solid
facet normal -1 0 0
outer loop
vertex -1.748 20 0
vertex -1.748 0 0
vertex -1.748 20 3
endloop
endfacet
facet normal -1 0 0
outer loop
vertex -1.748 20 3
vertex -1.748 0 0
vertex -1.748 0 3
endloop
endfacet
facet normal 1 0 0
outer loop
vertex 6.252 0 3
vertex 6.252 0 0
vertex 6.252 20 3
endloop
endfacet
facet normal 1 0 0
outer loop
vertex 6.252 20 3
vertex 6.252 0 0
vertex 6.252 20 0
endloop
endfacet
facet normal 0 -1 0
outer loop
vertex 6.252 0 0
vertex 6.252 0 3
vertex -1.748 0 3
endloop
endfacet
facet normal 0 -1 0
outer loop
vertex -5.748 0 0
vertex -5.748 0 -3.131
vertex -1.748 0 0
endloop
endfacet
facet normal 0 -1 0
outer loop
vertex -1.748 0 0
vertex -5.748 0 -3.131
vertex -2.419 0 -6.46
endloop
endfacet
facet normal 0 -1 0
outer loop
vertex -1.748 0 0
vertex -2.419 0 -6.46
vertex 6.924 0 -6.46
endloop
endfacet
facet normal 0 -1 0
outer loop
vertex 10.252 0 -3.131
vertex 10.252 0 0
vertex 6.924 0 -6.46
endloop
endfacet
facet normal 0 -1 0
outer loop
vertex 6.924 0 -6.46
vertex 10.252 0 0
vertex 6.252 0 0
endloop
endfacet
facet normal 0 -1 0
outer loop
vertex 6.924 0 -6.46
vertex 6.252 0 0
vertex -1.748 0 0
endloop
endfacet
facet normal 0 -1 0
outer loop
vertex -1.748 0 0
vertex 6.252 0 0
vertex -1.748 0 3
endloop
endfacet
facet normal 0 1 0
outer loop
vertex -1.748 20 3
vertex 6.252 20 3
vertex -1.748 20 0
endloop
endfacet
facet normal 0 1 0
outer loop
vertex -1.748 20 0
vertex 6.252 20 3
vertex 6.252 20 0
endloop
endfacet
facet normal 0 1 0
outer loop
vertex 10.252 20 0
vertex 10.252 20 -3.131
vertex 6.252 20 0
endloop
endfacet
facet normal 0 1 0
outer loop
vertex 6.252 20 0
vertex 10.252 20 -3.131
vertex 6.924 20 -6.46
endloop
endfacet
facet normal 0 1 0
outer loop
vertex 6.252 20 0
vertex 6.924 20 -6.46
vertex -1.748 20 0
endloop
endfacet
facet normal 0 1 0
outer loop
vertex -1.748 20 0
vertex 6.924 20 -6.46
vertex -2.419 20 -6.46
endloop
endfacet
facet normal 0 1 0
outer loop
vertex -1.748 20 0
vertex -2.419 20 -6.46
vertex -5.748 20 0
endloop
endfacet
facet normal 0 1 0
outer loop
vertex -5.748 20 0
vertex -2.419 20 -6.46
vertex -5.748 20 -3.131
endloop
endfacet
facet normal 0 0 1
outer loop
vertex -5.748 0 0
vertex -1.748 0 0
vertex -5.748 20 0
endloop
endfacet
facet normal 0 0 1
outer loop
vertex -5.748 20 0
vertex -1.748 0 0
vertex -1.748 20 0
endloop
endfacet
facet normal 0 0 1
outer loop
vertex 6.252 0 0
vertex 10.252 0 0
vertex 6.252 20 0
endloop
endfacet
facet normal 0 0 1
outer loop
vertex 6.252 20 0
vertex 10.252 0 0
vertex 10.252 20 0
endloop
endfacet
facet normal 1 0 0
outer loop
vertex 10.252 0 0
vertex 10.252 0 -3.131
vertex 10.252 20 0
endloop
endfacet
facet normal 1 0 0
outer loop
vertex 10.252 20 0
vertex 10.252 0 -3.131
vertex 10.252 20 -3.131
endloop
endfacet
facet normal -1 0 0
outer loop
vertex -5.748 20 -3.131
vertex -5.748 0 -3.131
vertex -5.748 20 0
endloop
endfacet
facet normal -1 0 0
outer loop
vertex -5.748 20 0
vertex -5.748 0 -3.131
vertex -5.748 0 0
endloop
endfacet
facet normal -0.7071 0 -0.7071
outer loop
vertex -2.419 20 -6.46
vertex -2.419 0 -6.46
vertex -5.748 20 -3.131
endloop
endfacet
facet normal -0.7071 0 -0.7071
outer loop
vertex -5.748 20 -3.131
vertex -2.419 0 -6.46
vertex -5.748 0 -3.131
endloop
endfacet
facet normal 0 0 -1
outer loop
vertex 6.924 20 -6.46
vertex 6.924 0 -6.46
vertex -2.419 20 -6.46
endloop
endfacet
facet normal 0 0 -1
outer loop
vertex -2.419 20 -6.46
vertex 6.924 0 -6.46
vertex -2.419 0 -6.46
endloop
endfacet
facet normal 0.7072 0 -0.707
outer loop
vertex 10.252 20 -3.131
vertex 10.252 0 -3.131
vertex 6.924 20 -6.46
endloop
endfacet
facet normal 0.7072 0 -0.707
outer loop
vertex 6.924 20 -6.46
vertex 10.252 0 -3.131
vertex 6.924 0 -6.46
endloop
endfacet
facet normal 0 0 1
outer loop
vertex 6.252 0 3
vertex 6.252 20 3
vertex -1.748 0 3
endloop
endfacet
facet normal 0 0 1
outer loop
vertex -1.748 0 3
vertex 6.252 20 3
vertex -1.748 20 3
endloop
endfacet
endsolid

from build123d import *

# Parameters (mm, degrees)
BOSS_EXTRUDE1_DEPTH          = 40
SKETCH2_W                    = 3.5
SKETCH2_H                    = 40
BOSS_EXTRUDE2_DEPTH          = 5
SKETCH4_R                    = 2
CUT_EXTRUDE1_DEPTH           = 7
SKETCH5_R                    = 3.5
CUT_EXTRUDE2_DEPTH           = 3
CUT_EXTRUDE2_DRAFT           = -27
CUT_EXTRUDE2_PROFILE_2_DEPTH = 3
CUT_EXTRUDE2_PROFILE_2_DRAFT = -27
BOSS_EXTRUDE3_DEPTH          = 3
SKETCH9_W                    = 13
SKETCH9_H                    = 40
CUT_EXTRUDE4_DEPTH           = 4.702585656
SKETCH10_W                   = 15
SKETCH10_H                   = 40
BOSS_EXTRUDE4_DEPTH          = 2.5
SKETCH11_W                   = 1.5
SKETCH11_H                   = 2.202585656
BOSS_EXTRUDE7_DEPTH          = 40
BOSS_EXTRUDE8_DEPTH          = 0.625841469
SKETCH13_R                   = 2
CUT_EXTRUDE5_DEPTH           = 10
SKETCH14_W                   = 2.5
SKETCH14_H                   = 40
BOSS_EXTRUDE9_DEPTH          = 0.5
SKETCH15_W                   = 2.5
SKETCH15_H                   = 40
BOSS_EXTRUDE10_DEPTH         = 0.5
BOSS_EXTRUDE11_DEPTH         = 40
BOSS_EXTRUDE12_DEPTH         = 1.13137085
SKETCH18_R                   = 2
CUT_EXTRUDE6_DEPTH           = 10
SKETCH19_R                   = 3
CUT_EXTRUDE7_DEPTH           = 3
CUT_EXTRUDE7_DRAFT           = -19
CUT_EXTRUDE7_PROFILE_2_DEPTH = 3
CUT_EXTRUDE7_PROFILE_2_DRAFT = -19
SKETCH20_W                   = 5
SKETCH20_H                   = 40
BOSS_EXTRUDE13_DEPTH         = 0.5
SKETCH21_W                   = 5
SKETCH21_H                   = 40
BOSS_EXTRUDE14_DEPTH         = 0.5
SKETCH22_W                   = 7
SKETCH22_H                   = 6.5
SKETCH22_W_2                 = 7.5
CUT_EXTRUDE8_DEPTH           = 20
SKETCH23_R                   = 2
BOSS_EXTRUDE15_DEPTH         = 6.459797975
BOSS_EXTRUDE16_START         = -11.459798
SKETCH24_R                   = 3
BOSS_EXTRUDE16_DEPTH         = 11.459798
SKETCH25_W                   = 4
SKETCH25_H                   = 20
CUT_EXTRUDE9_DEPTH           = 20
SKETCH26_W                   = 8
SKETCH26_H                   = 20
CUT_EXTRUDE10_DEPTH          = 1
SKETCH28_W                   = 8
SKETCH28_H                   = 20
CUT_EXTRUDE11_DEPTH          = 1


with BuildPart() as part:
    # Sketch1 → Boss-Extrude1 (new body)
    with BuildSketch(Plane(origin=(0, 0, 0), x_dir=(1, 0, 0), z_dir=(0, 1, 0))):
        Polygon((-4.247892457, 4.702585656), (8.752107543, 4.702585656), (8.752107543, 1.702585656), (7.049521887, 0), (-2.545306801, 0), (-4.247892457, 1.702585656), align=None)
    extrude(amount=BOSS_EXTRUDE1_DEPTH)

    # Sketch2 → Boss-Extrude2 (add)
    with BuildSketch(Plane.XY):
        with Locations((4.002107543, 20)):
            Rectangle(SKETCH2_W, SKETCH2_H)
        with Locations((0.502107543, 20)):
            Rectangle(SKETCH2_W, SKETCH2_H)
    extrude(amount=BOSS_EXTRUDE2_DEPTH)

    # Sketch4 → Cut-Extrude1 (cut)
    with BuildSketch(Plane.XY.offset(5)):
        with Locations((2.252107543, 30)):
            Circle(SKETCH4_R)
        with Locations((2.252107543, 10)):
            Circle(SKETCH4_R)
    extrude(amount=-CUT_EXTRUDE1_DEPTH, mode=Mode.SUBTRACT)


with BuildPart() as cut_extrude2_tool:
    # Sketch5 → Cut-Extrude2 (with draft: the straight prism first)
    with BuildSketch(Plane(origin=(0, 0, -4.702585656), x_dir=(-1, 0, 0), z_dir=(0, 0, -1))):
        with Locations((-2.252107543, 30)):
            Circle(SKETCH5_R)
    extrude(amount=-CUT_EXTRUDE2_DEPTH)
    # Cut-Extrude2: the draft: its side faces are tilted about the plane it starts from
    cut_extrude2_sides = [cut_extrude2_tool.faces().sort_by_distance(p)[0] for p in [
        (5.752107543, 30, -3.202585656),
    ]]
    draft(cut_extrude2_sides, Plane(origin=(0, 0, -4.702585656), x_dir=(-1, 0, 0), z_dir=(0, 0, -1)), CUT_EXTRUDE2_DRAFT)


with BuildPart() as part_1:
    add(part.part)

    # Cut-Extrude2: cut by cut_extrude2_tool
    add(cut_extrude2_tool.part, mode=Mode.SUBTRACT)


with BuildPart() as cut_extrude2_profile_2_tool:
    # Sketch5 → Cut-Extrude2 profile 2 (with draft: the straight prism first)
    with BuildSketch(Plane(origin=(0, 0, -4.702585656), x_dir=(-1, 0, 0), z_dir=(0, 0, -1))):
        with Locations((-2.252107543, 10)):
            Circle(SKETCH5_R)
    extrude(amount=-CUT_EXTRUDE2_PROFILE_2_DEPTH)
    # Cut-Extrude2 profile 2: the draft: its side faces are tilted about the plane it starts from
    cut_extrude2_profile_2_sides = [cut_extrude2_profile_2_tool.faces().sort_by_distance(p)[0] for p in [
        (5.752107543, 10, -3.202585656),
    ]]
    draft(cut_extrude2_profile_2_sides, Plane(origin=(0, 0, -4.702585656), x_dir=(-1, 0, 0), z_dir=(0, 0, -1)), CUT_EXTRUDE2_PROFILE_2_DRAFT)


with BuildPart() as part_2:
    add(part_1.part)

    # Cut-Extrude2 profile 2: cut by cut_extrude2_profile_2_tool
    add(cut_extrude2_profile_2_tool.part, mode=Mode.SUBTRACT)

    # Sketch7 → Boss-Extrude3 (add)
    with BuildSketch(Plane(origin=(0, 0, -4.702585656), x_dir=(-1, 0, 0), z_dir=(0, 0, -1))):
        Polygon((1.247892457, 46.5), (-5.752107543, 46.5), (-5.752107543, 40), (-4.252107543, 40), (-4.252107543, 45), (-0.252107543, 45), (-0.252107543, 43.275204256), (-0.252107543, 40), (1.247892457, 40), align=None)
        Polygon((-4.252107543, 0), (-5.752107543, 0), (-5.752107543, -6.5), (1.247892457, -6.5), (1.247892457, 0), (-0.252107543, 0), (-0.252107543, -5), (-4.252107543, -5), align=None)
    extrude(amount=-BOSS_EXTRUDE3_DEPTH)

    # Sketch9 → Cut-Extrude4 (cut)
    with BuildSketch(Plane(origin=(0, 0, -4.702585656), x_dir=(-1, 0, 0), z_dir=(0, 0, -1))):
        with Locations((-2.252107543, 20)):
            Rectangle(SKETCH9_W, SKETCH9_H)
    extrude(amount=-CUT_EXTRUDE4_DEPTH, mode=Mode.SUBTRACT)


with BuildPart() as cut_extrude4_piece_1:
    # of the separate pieces the step leaves, piece 1, a body of its own (cut_extrude4_pieces)
    add(part_2.part.solids().sort_by_distance((-1.247892457, 0, 0))[0])



with BuildPart() as cut_extrude4_piece_2:
    # of the separate pieces the step leaves, piece 2, a body of its own (cut_extrude4_pieces)
    add(part_2.part.solids().sort_by_distance((0.252107543, 40, -4.702585656))[0])


with BuildPart() as cut_extrude4_piece_3:
    # of the separate pieces the step leaves, piece 3, a body of its own (cut_extrude4_pieces)
    add(part_2.part.solids().sort_by_distance((-1.247892457, -6.5, -4.702585656))[0])


with BuildPart() as cut_extrude4_piece_1_1:
    add(cut_extrude4_piece_1.part)

    add(cut_extrude4_piece_2.part)  # Boss-Extrude4 merges Cut-Extrude4 piece 2

    add(cut_extrude4_piece_3.part)  # Boss-Extrude4 merges Cut-Extrude4 piece 3
    # Sketch10 → Boss-Extrude4 (add)
    with BuildSketch(Plane(origin=(0, 0, 0), x_dir=(-1, 0, 0), z_dir=(0, 0, -1))):
        with Locations((-2.252107543, 20)):
            Rectangle(SKETCH10_W, SKETCH10_H)
    extrude(amount=BOSS_EXTRUDE4_DEPTH)

    # Sketch11 → Boss-Extrude7 (add)
    with BuildSketch(Plane(origin=(0, 0, 0), x_dir=(1, 0, 0), z_dir=(0, 1, 0))):
        with Locations((5.002107543, 3.601292828)):
            Rectangle(SKETCH11_W, SKETCH11_H)
        Polygon((-2.419465332, 5.328427125), (-5.247892457, 2.5), (4.252107543, 2.5), (4.252107543, 4.702585656), (5.752107543, 4.702585656), (5.752107543, 2.5), (9.752107543, 2.5), (6.923680418, 5.328427125), align=None)
    extrude(amount=BOSS_EXTRUDE7_DEPTH)

    # Sketch12 → Boss-Extrude8 (add)
    with BuildSketch(Plane(origin=(0, 0, -4.702585656), x_dir=(-1, 0, 0), z_dir=(0, 0, -1))):
        Polygon((-5.752107543, 0), (-5.752107543, -6.5), (1.247892457, -6.5), (1.247892457, 0), (-0.252107543, 0), (-0.252107543, -5), (-4.252107543, -5), (-4.252107543, 0), align=None)
        Polygon((1.247892457, 46.5), (-5.752107543, 46.5), (-5.752107543, 40), (-4.252107543, 40), (-4.252107543, 45), (-0.252107543, 45), (-0.252107543, 40), (1.247892457, 40), align=None)
    extrude(amount=BOSS_EXTRUDE8_DEPTH)

    # Sketch13 → Cut-Extrude5 (cut)
    with BuildSketch(Plane.XY):
        with Locations((2.252107543, 30)):
            Circle(SKETCH13_R)
        with Locations((2.252107543, 10)):
            Circle(SKETCH13_R)
    extrude(amount=-CUT_EXTRUDE5_DEPTH, mode=Mode.SUBTRACT)

    # Sketch14 → Boss-Extrude9 (add)
    with BuildSketch(Plane(origin=(9.752107543, 0, 0), x_dir=(0, 0, -1), z_dir=(1, 0, 0))):
        with Locations((1.25, 20)):
            Rectangle(SKETCH14_W, SKETCH14_H)
    extrude(amount=BOSS_EXTRUDE9_DEPTH)

    # Sketch15 → Boss-Extrude10 (add)
    with BuildSketch(Plane.ZY.offset(5.247892457)):
        with Locations((-1.25, 20)):
            Rectangle(SKETCH15_W, SKETCH15_H)
    extrude(amount=BOSS_EXTRUDE10_DEPTH)

    # Sketch16 → Boss-Extrude11 (add)
    with BuildSketch(Plane.XZ):
        Polygon((-2.419465332, -5.328427125), (-5.247892457, -2.5), (-5.747892457, -2.5), (-5.747892457, -3.13137085), (-2.419465332, -6.459797975), (6.923680418, -6.459797975), (10.252107543, -3.13137085), (10.252107543, -2.5), (9.752107543, -2.5), (6.923680418, -5.328427125), (0.656985658, -5.328427125), align=None)
    extrude(amount=-BOSS_EXTRUDE11_DEPTH)

    # Sketch17 → Boss-Extrude12 (add)
    with BuildSketch(Plane(origin=(0, 0, -5.328427125), x_dir=(-1, 0, 0), z_dir=(0, 0, -1))):
        Polygon((-5.752107543, 0), (-5.752107543, -6.5), (1.247892457, -6.5), (1.247892457, 0), (0, 0), (0, -5), (-0.252107543, -5), (-4.252107543, -5), (-4.252107543, 0), align=None)
        Polygon((1.247892457, 46.5), (-5.752107543, 46.5), (-5.752107543, 40), (-4.252107543, 40), (-4.252107543, 44.953142187), (-0.252107543, 44.953142187), (-0.252107543, 40), (1.247892457, 40), align=None)
    extrude(amount=BOSS_EXTRUDE12_DEPTH)

    # Sketch18 → Cut-Extrude6 (cut)
    with BuildSketch(Plane.XY.offset(-5.328427125)):
        with Locations((2.252107543, 30)):
            Circle(SKETCH18_R)
        with Locations((2.252107543, 10)):
            Circle(SKETCH18_R)
    extrude(amount=-CUT_EXTRUDE6_DEPTH, mode=Mode.SUBTRACT)


with BuildPart() as cut_extrude7_tool:
    # Sketch19 → Cut-Extrude7 (with draft: the straight prism first)
    with BuildSketch(Plane(origin=(0, 0, -6.459797975), x_dir=(-1, 0, 0), z_dir=(0, 0, -1))):
        with Locations((-2.252107543, 30)):
            Circle(SKETCH19_R)
    extrude(amount=-CUT_EXTRUDE7_DEPTH)
    # Cut-Extrude7: the draft: its side faces are tilted about the plane it starts from
    cut_extrude7_sides = [cut_extrude7_tool.faces().sort_by_distance(p)[0] for p in [
        (5.252107543, 30, -4.959797975),
    ]]
    draft(cut_extrude7_sides, Plane(origin=(0, 0, -6.459797975), x_dir=(-1, 0, 0), z_dir=(0, 0, -1)), CUT_EXTRUDE7_DRAFT)


with BuildPart() as cut_extrude4_piece_1_2:
    add(cut_extrude4_piece_1_1.part)

    # Cut-Extrude7: cut by cut_extrude7_tool
    add(cut_extrude7_tool.part, mode=Mode.SUBTRACT)


with BuildPart() as cut_extrude7_profile_2_tool:
    # Sketch19 → Cut-Extrude7 profile 2 (with draft: the straight prism first)
    with BuildSketch(Plane(origin=(0, 0, -6.459797975), x_dir=(-1, 0, 0), z_dir=(0, 0, -1))):
        with Locations((-2.252107543, 10)):
            Circle(SKETCH19_R)
    extrude(amount=-CUT_EXTRUDE7_PROFILE_2_DEPTH)
    # Cut-Extrude7 profile 2: the draft: its side faces are tilted about the plane it starts from
    cut_extrude7_profile_2_sides = [cut_extrude7_profile_2_tool.faces().sort_by_distance(p)[0] for p in [
        (5.252107543, 10, -4.959797975),
    ]]
    draft(cut_extrude7_profile_2_sides, Plane(origin=(0, 0, -6.459797975), x_dir=(-1, 0, 0), z_dir=(0, 0, -1)), CUT_EXTRUDE7_PROFILE_2_DRAFT)


with BuildPart() as cut_extrude4_piece_1_3:
    add(cut_extrude4_piece_1_2.part)

    # Cut-Extrude7 profile 2: cut by cut_extrude7_profile_2_tool
    add(cut_extrude7_profile_2_tool.part, mode=Mode.SUBTRACT)

    # Sketch20 → Boss-Extrude13 (add)
    with BuildSketch(Plane.ZY.offset(1.247892457)):
        with Locations((2.5, 20)):
            Rectangle(SKETCH20_W, SKETCH20_H)
    extrude(amount=BOSS_EXTRUDE13_DEPTH)

    # Sketch21 → Boss-Extrude14 (add)
    with BuildSketch(Plane(origin=(5.752107543, 0, 0), x_dir=(0, 0, -1), z_dir=(1, 0, 0))):
        with Locations((-2.5, 20)):
            Rectangle(SKETCH21_W, SKETCH21_H)
    extrude(amount=BOSS_EXTRUDE14_DEPTH)

    # Sketch22 → Cut-Extrude8 (cut)
    with BuildSketch(Plane.XY.offset(5)):
        with Locations((2.252107543, 43.25)):
            Rectangle(SKETCH22_W, SKETCH22_H)
        with Locations((2.502107543, -3.25)):
            Rectangle(SKETCH22_W_2, SKETCH22_H)
    extrude(amount=-CUT_EXTRUDE8_DEPTH, mode=Mode.SUBTRACT)

    # Sketch23 → Boss-Extrude15 (add)
    with BuildSketch(Plane.XY):
        with Locations((2.252107543, 10)):
            Circle(SKETCH23_R)
        with Locations((2.252107543, 30)):
            Circle(SKETCH23_R)
    extrude(amount=-BOSS_EXTRUDE15_DEPTH)

    # Sketch24 → Boss-Extrude16 (add)
    with BuildSketch(Plane(origin=(0, 0, -6.459797975), x_dir=(-1, 0, 0), z_dir=(0, 0, -1)).offset(BOSS_EXTRUDE16_START)):
        with Locations((-2.252107543, 30)):
            Circle(SKETCH24_R)
        with Locations((-2.252107543, 10)):
            Circle(SKETCH24_R)
    extrude(amount=BOSS_EXTRUDE16_DEPTH)

    # Sketch25 → Cut-Extrude9 (cut)
    with BuildSketch(Plane.XY.offset(5)):
        Polygon((6.252107543, 20.358230215), (6.252107543, 20), (10.252107543, 20), (10.252107543, 40), (6.252107543, 40), align=None)
        Polygon((-1.747892457, 20), (6.252107543, 20), (6.252107543, 20.358230215), (6.252107543, 40), (-1.747892457, 40), align=None)
        with Locations((-3.747892457, 30)):
            Rectangle(SKETCH25_W, SKETCH25_H)
    extrude(amount=-CUT_EXTRUDE9_DEPTH, mode=Mode.SUBTRACT)

    # Sketch26 → Cut-Extrude10 (cut)
    with BuildSketch(Plane.XY.offset(5)):
        with Locations((2.252107543, 10)):
            Rectangle(SKETCH26_W, SKETCH26_H)
    extrude(amount=-CUT_EXTRUDE10_DEPTH, mode=Mode.SUBTRACT)

    # Sketch28 → Cut-Extrude11 (cut)
    with BuildSketch(Plane.XY.offset(4)):
        with Locations((2.252107543, 10)):
            Rectangle(SKETCH28_W, SKETCH28_H)
    extrude(amount=-CUT_EXTRUDE11_DEPTH, mode=Mode.SUBTRACT)


solid = cut_extrude4_piece_1_3.part
